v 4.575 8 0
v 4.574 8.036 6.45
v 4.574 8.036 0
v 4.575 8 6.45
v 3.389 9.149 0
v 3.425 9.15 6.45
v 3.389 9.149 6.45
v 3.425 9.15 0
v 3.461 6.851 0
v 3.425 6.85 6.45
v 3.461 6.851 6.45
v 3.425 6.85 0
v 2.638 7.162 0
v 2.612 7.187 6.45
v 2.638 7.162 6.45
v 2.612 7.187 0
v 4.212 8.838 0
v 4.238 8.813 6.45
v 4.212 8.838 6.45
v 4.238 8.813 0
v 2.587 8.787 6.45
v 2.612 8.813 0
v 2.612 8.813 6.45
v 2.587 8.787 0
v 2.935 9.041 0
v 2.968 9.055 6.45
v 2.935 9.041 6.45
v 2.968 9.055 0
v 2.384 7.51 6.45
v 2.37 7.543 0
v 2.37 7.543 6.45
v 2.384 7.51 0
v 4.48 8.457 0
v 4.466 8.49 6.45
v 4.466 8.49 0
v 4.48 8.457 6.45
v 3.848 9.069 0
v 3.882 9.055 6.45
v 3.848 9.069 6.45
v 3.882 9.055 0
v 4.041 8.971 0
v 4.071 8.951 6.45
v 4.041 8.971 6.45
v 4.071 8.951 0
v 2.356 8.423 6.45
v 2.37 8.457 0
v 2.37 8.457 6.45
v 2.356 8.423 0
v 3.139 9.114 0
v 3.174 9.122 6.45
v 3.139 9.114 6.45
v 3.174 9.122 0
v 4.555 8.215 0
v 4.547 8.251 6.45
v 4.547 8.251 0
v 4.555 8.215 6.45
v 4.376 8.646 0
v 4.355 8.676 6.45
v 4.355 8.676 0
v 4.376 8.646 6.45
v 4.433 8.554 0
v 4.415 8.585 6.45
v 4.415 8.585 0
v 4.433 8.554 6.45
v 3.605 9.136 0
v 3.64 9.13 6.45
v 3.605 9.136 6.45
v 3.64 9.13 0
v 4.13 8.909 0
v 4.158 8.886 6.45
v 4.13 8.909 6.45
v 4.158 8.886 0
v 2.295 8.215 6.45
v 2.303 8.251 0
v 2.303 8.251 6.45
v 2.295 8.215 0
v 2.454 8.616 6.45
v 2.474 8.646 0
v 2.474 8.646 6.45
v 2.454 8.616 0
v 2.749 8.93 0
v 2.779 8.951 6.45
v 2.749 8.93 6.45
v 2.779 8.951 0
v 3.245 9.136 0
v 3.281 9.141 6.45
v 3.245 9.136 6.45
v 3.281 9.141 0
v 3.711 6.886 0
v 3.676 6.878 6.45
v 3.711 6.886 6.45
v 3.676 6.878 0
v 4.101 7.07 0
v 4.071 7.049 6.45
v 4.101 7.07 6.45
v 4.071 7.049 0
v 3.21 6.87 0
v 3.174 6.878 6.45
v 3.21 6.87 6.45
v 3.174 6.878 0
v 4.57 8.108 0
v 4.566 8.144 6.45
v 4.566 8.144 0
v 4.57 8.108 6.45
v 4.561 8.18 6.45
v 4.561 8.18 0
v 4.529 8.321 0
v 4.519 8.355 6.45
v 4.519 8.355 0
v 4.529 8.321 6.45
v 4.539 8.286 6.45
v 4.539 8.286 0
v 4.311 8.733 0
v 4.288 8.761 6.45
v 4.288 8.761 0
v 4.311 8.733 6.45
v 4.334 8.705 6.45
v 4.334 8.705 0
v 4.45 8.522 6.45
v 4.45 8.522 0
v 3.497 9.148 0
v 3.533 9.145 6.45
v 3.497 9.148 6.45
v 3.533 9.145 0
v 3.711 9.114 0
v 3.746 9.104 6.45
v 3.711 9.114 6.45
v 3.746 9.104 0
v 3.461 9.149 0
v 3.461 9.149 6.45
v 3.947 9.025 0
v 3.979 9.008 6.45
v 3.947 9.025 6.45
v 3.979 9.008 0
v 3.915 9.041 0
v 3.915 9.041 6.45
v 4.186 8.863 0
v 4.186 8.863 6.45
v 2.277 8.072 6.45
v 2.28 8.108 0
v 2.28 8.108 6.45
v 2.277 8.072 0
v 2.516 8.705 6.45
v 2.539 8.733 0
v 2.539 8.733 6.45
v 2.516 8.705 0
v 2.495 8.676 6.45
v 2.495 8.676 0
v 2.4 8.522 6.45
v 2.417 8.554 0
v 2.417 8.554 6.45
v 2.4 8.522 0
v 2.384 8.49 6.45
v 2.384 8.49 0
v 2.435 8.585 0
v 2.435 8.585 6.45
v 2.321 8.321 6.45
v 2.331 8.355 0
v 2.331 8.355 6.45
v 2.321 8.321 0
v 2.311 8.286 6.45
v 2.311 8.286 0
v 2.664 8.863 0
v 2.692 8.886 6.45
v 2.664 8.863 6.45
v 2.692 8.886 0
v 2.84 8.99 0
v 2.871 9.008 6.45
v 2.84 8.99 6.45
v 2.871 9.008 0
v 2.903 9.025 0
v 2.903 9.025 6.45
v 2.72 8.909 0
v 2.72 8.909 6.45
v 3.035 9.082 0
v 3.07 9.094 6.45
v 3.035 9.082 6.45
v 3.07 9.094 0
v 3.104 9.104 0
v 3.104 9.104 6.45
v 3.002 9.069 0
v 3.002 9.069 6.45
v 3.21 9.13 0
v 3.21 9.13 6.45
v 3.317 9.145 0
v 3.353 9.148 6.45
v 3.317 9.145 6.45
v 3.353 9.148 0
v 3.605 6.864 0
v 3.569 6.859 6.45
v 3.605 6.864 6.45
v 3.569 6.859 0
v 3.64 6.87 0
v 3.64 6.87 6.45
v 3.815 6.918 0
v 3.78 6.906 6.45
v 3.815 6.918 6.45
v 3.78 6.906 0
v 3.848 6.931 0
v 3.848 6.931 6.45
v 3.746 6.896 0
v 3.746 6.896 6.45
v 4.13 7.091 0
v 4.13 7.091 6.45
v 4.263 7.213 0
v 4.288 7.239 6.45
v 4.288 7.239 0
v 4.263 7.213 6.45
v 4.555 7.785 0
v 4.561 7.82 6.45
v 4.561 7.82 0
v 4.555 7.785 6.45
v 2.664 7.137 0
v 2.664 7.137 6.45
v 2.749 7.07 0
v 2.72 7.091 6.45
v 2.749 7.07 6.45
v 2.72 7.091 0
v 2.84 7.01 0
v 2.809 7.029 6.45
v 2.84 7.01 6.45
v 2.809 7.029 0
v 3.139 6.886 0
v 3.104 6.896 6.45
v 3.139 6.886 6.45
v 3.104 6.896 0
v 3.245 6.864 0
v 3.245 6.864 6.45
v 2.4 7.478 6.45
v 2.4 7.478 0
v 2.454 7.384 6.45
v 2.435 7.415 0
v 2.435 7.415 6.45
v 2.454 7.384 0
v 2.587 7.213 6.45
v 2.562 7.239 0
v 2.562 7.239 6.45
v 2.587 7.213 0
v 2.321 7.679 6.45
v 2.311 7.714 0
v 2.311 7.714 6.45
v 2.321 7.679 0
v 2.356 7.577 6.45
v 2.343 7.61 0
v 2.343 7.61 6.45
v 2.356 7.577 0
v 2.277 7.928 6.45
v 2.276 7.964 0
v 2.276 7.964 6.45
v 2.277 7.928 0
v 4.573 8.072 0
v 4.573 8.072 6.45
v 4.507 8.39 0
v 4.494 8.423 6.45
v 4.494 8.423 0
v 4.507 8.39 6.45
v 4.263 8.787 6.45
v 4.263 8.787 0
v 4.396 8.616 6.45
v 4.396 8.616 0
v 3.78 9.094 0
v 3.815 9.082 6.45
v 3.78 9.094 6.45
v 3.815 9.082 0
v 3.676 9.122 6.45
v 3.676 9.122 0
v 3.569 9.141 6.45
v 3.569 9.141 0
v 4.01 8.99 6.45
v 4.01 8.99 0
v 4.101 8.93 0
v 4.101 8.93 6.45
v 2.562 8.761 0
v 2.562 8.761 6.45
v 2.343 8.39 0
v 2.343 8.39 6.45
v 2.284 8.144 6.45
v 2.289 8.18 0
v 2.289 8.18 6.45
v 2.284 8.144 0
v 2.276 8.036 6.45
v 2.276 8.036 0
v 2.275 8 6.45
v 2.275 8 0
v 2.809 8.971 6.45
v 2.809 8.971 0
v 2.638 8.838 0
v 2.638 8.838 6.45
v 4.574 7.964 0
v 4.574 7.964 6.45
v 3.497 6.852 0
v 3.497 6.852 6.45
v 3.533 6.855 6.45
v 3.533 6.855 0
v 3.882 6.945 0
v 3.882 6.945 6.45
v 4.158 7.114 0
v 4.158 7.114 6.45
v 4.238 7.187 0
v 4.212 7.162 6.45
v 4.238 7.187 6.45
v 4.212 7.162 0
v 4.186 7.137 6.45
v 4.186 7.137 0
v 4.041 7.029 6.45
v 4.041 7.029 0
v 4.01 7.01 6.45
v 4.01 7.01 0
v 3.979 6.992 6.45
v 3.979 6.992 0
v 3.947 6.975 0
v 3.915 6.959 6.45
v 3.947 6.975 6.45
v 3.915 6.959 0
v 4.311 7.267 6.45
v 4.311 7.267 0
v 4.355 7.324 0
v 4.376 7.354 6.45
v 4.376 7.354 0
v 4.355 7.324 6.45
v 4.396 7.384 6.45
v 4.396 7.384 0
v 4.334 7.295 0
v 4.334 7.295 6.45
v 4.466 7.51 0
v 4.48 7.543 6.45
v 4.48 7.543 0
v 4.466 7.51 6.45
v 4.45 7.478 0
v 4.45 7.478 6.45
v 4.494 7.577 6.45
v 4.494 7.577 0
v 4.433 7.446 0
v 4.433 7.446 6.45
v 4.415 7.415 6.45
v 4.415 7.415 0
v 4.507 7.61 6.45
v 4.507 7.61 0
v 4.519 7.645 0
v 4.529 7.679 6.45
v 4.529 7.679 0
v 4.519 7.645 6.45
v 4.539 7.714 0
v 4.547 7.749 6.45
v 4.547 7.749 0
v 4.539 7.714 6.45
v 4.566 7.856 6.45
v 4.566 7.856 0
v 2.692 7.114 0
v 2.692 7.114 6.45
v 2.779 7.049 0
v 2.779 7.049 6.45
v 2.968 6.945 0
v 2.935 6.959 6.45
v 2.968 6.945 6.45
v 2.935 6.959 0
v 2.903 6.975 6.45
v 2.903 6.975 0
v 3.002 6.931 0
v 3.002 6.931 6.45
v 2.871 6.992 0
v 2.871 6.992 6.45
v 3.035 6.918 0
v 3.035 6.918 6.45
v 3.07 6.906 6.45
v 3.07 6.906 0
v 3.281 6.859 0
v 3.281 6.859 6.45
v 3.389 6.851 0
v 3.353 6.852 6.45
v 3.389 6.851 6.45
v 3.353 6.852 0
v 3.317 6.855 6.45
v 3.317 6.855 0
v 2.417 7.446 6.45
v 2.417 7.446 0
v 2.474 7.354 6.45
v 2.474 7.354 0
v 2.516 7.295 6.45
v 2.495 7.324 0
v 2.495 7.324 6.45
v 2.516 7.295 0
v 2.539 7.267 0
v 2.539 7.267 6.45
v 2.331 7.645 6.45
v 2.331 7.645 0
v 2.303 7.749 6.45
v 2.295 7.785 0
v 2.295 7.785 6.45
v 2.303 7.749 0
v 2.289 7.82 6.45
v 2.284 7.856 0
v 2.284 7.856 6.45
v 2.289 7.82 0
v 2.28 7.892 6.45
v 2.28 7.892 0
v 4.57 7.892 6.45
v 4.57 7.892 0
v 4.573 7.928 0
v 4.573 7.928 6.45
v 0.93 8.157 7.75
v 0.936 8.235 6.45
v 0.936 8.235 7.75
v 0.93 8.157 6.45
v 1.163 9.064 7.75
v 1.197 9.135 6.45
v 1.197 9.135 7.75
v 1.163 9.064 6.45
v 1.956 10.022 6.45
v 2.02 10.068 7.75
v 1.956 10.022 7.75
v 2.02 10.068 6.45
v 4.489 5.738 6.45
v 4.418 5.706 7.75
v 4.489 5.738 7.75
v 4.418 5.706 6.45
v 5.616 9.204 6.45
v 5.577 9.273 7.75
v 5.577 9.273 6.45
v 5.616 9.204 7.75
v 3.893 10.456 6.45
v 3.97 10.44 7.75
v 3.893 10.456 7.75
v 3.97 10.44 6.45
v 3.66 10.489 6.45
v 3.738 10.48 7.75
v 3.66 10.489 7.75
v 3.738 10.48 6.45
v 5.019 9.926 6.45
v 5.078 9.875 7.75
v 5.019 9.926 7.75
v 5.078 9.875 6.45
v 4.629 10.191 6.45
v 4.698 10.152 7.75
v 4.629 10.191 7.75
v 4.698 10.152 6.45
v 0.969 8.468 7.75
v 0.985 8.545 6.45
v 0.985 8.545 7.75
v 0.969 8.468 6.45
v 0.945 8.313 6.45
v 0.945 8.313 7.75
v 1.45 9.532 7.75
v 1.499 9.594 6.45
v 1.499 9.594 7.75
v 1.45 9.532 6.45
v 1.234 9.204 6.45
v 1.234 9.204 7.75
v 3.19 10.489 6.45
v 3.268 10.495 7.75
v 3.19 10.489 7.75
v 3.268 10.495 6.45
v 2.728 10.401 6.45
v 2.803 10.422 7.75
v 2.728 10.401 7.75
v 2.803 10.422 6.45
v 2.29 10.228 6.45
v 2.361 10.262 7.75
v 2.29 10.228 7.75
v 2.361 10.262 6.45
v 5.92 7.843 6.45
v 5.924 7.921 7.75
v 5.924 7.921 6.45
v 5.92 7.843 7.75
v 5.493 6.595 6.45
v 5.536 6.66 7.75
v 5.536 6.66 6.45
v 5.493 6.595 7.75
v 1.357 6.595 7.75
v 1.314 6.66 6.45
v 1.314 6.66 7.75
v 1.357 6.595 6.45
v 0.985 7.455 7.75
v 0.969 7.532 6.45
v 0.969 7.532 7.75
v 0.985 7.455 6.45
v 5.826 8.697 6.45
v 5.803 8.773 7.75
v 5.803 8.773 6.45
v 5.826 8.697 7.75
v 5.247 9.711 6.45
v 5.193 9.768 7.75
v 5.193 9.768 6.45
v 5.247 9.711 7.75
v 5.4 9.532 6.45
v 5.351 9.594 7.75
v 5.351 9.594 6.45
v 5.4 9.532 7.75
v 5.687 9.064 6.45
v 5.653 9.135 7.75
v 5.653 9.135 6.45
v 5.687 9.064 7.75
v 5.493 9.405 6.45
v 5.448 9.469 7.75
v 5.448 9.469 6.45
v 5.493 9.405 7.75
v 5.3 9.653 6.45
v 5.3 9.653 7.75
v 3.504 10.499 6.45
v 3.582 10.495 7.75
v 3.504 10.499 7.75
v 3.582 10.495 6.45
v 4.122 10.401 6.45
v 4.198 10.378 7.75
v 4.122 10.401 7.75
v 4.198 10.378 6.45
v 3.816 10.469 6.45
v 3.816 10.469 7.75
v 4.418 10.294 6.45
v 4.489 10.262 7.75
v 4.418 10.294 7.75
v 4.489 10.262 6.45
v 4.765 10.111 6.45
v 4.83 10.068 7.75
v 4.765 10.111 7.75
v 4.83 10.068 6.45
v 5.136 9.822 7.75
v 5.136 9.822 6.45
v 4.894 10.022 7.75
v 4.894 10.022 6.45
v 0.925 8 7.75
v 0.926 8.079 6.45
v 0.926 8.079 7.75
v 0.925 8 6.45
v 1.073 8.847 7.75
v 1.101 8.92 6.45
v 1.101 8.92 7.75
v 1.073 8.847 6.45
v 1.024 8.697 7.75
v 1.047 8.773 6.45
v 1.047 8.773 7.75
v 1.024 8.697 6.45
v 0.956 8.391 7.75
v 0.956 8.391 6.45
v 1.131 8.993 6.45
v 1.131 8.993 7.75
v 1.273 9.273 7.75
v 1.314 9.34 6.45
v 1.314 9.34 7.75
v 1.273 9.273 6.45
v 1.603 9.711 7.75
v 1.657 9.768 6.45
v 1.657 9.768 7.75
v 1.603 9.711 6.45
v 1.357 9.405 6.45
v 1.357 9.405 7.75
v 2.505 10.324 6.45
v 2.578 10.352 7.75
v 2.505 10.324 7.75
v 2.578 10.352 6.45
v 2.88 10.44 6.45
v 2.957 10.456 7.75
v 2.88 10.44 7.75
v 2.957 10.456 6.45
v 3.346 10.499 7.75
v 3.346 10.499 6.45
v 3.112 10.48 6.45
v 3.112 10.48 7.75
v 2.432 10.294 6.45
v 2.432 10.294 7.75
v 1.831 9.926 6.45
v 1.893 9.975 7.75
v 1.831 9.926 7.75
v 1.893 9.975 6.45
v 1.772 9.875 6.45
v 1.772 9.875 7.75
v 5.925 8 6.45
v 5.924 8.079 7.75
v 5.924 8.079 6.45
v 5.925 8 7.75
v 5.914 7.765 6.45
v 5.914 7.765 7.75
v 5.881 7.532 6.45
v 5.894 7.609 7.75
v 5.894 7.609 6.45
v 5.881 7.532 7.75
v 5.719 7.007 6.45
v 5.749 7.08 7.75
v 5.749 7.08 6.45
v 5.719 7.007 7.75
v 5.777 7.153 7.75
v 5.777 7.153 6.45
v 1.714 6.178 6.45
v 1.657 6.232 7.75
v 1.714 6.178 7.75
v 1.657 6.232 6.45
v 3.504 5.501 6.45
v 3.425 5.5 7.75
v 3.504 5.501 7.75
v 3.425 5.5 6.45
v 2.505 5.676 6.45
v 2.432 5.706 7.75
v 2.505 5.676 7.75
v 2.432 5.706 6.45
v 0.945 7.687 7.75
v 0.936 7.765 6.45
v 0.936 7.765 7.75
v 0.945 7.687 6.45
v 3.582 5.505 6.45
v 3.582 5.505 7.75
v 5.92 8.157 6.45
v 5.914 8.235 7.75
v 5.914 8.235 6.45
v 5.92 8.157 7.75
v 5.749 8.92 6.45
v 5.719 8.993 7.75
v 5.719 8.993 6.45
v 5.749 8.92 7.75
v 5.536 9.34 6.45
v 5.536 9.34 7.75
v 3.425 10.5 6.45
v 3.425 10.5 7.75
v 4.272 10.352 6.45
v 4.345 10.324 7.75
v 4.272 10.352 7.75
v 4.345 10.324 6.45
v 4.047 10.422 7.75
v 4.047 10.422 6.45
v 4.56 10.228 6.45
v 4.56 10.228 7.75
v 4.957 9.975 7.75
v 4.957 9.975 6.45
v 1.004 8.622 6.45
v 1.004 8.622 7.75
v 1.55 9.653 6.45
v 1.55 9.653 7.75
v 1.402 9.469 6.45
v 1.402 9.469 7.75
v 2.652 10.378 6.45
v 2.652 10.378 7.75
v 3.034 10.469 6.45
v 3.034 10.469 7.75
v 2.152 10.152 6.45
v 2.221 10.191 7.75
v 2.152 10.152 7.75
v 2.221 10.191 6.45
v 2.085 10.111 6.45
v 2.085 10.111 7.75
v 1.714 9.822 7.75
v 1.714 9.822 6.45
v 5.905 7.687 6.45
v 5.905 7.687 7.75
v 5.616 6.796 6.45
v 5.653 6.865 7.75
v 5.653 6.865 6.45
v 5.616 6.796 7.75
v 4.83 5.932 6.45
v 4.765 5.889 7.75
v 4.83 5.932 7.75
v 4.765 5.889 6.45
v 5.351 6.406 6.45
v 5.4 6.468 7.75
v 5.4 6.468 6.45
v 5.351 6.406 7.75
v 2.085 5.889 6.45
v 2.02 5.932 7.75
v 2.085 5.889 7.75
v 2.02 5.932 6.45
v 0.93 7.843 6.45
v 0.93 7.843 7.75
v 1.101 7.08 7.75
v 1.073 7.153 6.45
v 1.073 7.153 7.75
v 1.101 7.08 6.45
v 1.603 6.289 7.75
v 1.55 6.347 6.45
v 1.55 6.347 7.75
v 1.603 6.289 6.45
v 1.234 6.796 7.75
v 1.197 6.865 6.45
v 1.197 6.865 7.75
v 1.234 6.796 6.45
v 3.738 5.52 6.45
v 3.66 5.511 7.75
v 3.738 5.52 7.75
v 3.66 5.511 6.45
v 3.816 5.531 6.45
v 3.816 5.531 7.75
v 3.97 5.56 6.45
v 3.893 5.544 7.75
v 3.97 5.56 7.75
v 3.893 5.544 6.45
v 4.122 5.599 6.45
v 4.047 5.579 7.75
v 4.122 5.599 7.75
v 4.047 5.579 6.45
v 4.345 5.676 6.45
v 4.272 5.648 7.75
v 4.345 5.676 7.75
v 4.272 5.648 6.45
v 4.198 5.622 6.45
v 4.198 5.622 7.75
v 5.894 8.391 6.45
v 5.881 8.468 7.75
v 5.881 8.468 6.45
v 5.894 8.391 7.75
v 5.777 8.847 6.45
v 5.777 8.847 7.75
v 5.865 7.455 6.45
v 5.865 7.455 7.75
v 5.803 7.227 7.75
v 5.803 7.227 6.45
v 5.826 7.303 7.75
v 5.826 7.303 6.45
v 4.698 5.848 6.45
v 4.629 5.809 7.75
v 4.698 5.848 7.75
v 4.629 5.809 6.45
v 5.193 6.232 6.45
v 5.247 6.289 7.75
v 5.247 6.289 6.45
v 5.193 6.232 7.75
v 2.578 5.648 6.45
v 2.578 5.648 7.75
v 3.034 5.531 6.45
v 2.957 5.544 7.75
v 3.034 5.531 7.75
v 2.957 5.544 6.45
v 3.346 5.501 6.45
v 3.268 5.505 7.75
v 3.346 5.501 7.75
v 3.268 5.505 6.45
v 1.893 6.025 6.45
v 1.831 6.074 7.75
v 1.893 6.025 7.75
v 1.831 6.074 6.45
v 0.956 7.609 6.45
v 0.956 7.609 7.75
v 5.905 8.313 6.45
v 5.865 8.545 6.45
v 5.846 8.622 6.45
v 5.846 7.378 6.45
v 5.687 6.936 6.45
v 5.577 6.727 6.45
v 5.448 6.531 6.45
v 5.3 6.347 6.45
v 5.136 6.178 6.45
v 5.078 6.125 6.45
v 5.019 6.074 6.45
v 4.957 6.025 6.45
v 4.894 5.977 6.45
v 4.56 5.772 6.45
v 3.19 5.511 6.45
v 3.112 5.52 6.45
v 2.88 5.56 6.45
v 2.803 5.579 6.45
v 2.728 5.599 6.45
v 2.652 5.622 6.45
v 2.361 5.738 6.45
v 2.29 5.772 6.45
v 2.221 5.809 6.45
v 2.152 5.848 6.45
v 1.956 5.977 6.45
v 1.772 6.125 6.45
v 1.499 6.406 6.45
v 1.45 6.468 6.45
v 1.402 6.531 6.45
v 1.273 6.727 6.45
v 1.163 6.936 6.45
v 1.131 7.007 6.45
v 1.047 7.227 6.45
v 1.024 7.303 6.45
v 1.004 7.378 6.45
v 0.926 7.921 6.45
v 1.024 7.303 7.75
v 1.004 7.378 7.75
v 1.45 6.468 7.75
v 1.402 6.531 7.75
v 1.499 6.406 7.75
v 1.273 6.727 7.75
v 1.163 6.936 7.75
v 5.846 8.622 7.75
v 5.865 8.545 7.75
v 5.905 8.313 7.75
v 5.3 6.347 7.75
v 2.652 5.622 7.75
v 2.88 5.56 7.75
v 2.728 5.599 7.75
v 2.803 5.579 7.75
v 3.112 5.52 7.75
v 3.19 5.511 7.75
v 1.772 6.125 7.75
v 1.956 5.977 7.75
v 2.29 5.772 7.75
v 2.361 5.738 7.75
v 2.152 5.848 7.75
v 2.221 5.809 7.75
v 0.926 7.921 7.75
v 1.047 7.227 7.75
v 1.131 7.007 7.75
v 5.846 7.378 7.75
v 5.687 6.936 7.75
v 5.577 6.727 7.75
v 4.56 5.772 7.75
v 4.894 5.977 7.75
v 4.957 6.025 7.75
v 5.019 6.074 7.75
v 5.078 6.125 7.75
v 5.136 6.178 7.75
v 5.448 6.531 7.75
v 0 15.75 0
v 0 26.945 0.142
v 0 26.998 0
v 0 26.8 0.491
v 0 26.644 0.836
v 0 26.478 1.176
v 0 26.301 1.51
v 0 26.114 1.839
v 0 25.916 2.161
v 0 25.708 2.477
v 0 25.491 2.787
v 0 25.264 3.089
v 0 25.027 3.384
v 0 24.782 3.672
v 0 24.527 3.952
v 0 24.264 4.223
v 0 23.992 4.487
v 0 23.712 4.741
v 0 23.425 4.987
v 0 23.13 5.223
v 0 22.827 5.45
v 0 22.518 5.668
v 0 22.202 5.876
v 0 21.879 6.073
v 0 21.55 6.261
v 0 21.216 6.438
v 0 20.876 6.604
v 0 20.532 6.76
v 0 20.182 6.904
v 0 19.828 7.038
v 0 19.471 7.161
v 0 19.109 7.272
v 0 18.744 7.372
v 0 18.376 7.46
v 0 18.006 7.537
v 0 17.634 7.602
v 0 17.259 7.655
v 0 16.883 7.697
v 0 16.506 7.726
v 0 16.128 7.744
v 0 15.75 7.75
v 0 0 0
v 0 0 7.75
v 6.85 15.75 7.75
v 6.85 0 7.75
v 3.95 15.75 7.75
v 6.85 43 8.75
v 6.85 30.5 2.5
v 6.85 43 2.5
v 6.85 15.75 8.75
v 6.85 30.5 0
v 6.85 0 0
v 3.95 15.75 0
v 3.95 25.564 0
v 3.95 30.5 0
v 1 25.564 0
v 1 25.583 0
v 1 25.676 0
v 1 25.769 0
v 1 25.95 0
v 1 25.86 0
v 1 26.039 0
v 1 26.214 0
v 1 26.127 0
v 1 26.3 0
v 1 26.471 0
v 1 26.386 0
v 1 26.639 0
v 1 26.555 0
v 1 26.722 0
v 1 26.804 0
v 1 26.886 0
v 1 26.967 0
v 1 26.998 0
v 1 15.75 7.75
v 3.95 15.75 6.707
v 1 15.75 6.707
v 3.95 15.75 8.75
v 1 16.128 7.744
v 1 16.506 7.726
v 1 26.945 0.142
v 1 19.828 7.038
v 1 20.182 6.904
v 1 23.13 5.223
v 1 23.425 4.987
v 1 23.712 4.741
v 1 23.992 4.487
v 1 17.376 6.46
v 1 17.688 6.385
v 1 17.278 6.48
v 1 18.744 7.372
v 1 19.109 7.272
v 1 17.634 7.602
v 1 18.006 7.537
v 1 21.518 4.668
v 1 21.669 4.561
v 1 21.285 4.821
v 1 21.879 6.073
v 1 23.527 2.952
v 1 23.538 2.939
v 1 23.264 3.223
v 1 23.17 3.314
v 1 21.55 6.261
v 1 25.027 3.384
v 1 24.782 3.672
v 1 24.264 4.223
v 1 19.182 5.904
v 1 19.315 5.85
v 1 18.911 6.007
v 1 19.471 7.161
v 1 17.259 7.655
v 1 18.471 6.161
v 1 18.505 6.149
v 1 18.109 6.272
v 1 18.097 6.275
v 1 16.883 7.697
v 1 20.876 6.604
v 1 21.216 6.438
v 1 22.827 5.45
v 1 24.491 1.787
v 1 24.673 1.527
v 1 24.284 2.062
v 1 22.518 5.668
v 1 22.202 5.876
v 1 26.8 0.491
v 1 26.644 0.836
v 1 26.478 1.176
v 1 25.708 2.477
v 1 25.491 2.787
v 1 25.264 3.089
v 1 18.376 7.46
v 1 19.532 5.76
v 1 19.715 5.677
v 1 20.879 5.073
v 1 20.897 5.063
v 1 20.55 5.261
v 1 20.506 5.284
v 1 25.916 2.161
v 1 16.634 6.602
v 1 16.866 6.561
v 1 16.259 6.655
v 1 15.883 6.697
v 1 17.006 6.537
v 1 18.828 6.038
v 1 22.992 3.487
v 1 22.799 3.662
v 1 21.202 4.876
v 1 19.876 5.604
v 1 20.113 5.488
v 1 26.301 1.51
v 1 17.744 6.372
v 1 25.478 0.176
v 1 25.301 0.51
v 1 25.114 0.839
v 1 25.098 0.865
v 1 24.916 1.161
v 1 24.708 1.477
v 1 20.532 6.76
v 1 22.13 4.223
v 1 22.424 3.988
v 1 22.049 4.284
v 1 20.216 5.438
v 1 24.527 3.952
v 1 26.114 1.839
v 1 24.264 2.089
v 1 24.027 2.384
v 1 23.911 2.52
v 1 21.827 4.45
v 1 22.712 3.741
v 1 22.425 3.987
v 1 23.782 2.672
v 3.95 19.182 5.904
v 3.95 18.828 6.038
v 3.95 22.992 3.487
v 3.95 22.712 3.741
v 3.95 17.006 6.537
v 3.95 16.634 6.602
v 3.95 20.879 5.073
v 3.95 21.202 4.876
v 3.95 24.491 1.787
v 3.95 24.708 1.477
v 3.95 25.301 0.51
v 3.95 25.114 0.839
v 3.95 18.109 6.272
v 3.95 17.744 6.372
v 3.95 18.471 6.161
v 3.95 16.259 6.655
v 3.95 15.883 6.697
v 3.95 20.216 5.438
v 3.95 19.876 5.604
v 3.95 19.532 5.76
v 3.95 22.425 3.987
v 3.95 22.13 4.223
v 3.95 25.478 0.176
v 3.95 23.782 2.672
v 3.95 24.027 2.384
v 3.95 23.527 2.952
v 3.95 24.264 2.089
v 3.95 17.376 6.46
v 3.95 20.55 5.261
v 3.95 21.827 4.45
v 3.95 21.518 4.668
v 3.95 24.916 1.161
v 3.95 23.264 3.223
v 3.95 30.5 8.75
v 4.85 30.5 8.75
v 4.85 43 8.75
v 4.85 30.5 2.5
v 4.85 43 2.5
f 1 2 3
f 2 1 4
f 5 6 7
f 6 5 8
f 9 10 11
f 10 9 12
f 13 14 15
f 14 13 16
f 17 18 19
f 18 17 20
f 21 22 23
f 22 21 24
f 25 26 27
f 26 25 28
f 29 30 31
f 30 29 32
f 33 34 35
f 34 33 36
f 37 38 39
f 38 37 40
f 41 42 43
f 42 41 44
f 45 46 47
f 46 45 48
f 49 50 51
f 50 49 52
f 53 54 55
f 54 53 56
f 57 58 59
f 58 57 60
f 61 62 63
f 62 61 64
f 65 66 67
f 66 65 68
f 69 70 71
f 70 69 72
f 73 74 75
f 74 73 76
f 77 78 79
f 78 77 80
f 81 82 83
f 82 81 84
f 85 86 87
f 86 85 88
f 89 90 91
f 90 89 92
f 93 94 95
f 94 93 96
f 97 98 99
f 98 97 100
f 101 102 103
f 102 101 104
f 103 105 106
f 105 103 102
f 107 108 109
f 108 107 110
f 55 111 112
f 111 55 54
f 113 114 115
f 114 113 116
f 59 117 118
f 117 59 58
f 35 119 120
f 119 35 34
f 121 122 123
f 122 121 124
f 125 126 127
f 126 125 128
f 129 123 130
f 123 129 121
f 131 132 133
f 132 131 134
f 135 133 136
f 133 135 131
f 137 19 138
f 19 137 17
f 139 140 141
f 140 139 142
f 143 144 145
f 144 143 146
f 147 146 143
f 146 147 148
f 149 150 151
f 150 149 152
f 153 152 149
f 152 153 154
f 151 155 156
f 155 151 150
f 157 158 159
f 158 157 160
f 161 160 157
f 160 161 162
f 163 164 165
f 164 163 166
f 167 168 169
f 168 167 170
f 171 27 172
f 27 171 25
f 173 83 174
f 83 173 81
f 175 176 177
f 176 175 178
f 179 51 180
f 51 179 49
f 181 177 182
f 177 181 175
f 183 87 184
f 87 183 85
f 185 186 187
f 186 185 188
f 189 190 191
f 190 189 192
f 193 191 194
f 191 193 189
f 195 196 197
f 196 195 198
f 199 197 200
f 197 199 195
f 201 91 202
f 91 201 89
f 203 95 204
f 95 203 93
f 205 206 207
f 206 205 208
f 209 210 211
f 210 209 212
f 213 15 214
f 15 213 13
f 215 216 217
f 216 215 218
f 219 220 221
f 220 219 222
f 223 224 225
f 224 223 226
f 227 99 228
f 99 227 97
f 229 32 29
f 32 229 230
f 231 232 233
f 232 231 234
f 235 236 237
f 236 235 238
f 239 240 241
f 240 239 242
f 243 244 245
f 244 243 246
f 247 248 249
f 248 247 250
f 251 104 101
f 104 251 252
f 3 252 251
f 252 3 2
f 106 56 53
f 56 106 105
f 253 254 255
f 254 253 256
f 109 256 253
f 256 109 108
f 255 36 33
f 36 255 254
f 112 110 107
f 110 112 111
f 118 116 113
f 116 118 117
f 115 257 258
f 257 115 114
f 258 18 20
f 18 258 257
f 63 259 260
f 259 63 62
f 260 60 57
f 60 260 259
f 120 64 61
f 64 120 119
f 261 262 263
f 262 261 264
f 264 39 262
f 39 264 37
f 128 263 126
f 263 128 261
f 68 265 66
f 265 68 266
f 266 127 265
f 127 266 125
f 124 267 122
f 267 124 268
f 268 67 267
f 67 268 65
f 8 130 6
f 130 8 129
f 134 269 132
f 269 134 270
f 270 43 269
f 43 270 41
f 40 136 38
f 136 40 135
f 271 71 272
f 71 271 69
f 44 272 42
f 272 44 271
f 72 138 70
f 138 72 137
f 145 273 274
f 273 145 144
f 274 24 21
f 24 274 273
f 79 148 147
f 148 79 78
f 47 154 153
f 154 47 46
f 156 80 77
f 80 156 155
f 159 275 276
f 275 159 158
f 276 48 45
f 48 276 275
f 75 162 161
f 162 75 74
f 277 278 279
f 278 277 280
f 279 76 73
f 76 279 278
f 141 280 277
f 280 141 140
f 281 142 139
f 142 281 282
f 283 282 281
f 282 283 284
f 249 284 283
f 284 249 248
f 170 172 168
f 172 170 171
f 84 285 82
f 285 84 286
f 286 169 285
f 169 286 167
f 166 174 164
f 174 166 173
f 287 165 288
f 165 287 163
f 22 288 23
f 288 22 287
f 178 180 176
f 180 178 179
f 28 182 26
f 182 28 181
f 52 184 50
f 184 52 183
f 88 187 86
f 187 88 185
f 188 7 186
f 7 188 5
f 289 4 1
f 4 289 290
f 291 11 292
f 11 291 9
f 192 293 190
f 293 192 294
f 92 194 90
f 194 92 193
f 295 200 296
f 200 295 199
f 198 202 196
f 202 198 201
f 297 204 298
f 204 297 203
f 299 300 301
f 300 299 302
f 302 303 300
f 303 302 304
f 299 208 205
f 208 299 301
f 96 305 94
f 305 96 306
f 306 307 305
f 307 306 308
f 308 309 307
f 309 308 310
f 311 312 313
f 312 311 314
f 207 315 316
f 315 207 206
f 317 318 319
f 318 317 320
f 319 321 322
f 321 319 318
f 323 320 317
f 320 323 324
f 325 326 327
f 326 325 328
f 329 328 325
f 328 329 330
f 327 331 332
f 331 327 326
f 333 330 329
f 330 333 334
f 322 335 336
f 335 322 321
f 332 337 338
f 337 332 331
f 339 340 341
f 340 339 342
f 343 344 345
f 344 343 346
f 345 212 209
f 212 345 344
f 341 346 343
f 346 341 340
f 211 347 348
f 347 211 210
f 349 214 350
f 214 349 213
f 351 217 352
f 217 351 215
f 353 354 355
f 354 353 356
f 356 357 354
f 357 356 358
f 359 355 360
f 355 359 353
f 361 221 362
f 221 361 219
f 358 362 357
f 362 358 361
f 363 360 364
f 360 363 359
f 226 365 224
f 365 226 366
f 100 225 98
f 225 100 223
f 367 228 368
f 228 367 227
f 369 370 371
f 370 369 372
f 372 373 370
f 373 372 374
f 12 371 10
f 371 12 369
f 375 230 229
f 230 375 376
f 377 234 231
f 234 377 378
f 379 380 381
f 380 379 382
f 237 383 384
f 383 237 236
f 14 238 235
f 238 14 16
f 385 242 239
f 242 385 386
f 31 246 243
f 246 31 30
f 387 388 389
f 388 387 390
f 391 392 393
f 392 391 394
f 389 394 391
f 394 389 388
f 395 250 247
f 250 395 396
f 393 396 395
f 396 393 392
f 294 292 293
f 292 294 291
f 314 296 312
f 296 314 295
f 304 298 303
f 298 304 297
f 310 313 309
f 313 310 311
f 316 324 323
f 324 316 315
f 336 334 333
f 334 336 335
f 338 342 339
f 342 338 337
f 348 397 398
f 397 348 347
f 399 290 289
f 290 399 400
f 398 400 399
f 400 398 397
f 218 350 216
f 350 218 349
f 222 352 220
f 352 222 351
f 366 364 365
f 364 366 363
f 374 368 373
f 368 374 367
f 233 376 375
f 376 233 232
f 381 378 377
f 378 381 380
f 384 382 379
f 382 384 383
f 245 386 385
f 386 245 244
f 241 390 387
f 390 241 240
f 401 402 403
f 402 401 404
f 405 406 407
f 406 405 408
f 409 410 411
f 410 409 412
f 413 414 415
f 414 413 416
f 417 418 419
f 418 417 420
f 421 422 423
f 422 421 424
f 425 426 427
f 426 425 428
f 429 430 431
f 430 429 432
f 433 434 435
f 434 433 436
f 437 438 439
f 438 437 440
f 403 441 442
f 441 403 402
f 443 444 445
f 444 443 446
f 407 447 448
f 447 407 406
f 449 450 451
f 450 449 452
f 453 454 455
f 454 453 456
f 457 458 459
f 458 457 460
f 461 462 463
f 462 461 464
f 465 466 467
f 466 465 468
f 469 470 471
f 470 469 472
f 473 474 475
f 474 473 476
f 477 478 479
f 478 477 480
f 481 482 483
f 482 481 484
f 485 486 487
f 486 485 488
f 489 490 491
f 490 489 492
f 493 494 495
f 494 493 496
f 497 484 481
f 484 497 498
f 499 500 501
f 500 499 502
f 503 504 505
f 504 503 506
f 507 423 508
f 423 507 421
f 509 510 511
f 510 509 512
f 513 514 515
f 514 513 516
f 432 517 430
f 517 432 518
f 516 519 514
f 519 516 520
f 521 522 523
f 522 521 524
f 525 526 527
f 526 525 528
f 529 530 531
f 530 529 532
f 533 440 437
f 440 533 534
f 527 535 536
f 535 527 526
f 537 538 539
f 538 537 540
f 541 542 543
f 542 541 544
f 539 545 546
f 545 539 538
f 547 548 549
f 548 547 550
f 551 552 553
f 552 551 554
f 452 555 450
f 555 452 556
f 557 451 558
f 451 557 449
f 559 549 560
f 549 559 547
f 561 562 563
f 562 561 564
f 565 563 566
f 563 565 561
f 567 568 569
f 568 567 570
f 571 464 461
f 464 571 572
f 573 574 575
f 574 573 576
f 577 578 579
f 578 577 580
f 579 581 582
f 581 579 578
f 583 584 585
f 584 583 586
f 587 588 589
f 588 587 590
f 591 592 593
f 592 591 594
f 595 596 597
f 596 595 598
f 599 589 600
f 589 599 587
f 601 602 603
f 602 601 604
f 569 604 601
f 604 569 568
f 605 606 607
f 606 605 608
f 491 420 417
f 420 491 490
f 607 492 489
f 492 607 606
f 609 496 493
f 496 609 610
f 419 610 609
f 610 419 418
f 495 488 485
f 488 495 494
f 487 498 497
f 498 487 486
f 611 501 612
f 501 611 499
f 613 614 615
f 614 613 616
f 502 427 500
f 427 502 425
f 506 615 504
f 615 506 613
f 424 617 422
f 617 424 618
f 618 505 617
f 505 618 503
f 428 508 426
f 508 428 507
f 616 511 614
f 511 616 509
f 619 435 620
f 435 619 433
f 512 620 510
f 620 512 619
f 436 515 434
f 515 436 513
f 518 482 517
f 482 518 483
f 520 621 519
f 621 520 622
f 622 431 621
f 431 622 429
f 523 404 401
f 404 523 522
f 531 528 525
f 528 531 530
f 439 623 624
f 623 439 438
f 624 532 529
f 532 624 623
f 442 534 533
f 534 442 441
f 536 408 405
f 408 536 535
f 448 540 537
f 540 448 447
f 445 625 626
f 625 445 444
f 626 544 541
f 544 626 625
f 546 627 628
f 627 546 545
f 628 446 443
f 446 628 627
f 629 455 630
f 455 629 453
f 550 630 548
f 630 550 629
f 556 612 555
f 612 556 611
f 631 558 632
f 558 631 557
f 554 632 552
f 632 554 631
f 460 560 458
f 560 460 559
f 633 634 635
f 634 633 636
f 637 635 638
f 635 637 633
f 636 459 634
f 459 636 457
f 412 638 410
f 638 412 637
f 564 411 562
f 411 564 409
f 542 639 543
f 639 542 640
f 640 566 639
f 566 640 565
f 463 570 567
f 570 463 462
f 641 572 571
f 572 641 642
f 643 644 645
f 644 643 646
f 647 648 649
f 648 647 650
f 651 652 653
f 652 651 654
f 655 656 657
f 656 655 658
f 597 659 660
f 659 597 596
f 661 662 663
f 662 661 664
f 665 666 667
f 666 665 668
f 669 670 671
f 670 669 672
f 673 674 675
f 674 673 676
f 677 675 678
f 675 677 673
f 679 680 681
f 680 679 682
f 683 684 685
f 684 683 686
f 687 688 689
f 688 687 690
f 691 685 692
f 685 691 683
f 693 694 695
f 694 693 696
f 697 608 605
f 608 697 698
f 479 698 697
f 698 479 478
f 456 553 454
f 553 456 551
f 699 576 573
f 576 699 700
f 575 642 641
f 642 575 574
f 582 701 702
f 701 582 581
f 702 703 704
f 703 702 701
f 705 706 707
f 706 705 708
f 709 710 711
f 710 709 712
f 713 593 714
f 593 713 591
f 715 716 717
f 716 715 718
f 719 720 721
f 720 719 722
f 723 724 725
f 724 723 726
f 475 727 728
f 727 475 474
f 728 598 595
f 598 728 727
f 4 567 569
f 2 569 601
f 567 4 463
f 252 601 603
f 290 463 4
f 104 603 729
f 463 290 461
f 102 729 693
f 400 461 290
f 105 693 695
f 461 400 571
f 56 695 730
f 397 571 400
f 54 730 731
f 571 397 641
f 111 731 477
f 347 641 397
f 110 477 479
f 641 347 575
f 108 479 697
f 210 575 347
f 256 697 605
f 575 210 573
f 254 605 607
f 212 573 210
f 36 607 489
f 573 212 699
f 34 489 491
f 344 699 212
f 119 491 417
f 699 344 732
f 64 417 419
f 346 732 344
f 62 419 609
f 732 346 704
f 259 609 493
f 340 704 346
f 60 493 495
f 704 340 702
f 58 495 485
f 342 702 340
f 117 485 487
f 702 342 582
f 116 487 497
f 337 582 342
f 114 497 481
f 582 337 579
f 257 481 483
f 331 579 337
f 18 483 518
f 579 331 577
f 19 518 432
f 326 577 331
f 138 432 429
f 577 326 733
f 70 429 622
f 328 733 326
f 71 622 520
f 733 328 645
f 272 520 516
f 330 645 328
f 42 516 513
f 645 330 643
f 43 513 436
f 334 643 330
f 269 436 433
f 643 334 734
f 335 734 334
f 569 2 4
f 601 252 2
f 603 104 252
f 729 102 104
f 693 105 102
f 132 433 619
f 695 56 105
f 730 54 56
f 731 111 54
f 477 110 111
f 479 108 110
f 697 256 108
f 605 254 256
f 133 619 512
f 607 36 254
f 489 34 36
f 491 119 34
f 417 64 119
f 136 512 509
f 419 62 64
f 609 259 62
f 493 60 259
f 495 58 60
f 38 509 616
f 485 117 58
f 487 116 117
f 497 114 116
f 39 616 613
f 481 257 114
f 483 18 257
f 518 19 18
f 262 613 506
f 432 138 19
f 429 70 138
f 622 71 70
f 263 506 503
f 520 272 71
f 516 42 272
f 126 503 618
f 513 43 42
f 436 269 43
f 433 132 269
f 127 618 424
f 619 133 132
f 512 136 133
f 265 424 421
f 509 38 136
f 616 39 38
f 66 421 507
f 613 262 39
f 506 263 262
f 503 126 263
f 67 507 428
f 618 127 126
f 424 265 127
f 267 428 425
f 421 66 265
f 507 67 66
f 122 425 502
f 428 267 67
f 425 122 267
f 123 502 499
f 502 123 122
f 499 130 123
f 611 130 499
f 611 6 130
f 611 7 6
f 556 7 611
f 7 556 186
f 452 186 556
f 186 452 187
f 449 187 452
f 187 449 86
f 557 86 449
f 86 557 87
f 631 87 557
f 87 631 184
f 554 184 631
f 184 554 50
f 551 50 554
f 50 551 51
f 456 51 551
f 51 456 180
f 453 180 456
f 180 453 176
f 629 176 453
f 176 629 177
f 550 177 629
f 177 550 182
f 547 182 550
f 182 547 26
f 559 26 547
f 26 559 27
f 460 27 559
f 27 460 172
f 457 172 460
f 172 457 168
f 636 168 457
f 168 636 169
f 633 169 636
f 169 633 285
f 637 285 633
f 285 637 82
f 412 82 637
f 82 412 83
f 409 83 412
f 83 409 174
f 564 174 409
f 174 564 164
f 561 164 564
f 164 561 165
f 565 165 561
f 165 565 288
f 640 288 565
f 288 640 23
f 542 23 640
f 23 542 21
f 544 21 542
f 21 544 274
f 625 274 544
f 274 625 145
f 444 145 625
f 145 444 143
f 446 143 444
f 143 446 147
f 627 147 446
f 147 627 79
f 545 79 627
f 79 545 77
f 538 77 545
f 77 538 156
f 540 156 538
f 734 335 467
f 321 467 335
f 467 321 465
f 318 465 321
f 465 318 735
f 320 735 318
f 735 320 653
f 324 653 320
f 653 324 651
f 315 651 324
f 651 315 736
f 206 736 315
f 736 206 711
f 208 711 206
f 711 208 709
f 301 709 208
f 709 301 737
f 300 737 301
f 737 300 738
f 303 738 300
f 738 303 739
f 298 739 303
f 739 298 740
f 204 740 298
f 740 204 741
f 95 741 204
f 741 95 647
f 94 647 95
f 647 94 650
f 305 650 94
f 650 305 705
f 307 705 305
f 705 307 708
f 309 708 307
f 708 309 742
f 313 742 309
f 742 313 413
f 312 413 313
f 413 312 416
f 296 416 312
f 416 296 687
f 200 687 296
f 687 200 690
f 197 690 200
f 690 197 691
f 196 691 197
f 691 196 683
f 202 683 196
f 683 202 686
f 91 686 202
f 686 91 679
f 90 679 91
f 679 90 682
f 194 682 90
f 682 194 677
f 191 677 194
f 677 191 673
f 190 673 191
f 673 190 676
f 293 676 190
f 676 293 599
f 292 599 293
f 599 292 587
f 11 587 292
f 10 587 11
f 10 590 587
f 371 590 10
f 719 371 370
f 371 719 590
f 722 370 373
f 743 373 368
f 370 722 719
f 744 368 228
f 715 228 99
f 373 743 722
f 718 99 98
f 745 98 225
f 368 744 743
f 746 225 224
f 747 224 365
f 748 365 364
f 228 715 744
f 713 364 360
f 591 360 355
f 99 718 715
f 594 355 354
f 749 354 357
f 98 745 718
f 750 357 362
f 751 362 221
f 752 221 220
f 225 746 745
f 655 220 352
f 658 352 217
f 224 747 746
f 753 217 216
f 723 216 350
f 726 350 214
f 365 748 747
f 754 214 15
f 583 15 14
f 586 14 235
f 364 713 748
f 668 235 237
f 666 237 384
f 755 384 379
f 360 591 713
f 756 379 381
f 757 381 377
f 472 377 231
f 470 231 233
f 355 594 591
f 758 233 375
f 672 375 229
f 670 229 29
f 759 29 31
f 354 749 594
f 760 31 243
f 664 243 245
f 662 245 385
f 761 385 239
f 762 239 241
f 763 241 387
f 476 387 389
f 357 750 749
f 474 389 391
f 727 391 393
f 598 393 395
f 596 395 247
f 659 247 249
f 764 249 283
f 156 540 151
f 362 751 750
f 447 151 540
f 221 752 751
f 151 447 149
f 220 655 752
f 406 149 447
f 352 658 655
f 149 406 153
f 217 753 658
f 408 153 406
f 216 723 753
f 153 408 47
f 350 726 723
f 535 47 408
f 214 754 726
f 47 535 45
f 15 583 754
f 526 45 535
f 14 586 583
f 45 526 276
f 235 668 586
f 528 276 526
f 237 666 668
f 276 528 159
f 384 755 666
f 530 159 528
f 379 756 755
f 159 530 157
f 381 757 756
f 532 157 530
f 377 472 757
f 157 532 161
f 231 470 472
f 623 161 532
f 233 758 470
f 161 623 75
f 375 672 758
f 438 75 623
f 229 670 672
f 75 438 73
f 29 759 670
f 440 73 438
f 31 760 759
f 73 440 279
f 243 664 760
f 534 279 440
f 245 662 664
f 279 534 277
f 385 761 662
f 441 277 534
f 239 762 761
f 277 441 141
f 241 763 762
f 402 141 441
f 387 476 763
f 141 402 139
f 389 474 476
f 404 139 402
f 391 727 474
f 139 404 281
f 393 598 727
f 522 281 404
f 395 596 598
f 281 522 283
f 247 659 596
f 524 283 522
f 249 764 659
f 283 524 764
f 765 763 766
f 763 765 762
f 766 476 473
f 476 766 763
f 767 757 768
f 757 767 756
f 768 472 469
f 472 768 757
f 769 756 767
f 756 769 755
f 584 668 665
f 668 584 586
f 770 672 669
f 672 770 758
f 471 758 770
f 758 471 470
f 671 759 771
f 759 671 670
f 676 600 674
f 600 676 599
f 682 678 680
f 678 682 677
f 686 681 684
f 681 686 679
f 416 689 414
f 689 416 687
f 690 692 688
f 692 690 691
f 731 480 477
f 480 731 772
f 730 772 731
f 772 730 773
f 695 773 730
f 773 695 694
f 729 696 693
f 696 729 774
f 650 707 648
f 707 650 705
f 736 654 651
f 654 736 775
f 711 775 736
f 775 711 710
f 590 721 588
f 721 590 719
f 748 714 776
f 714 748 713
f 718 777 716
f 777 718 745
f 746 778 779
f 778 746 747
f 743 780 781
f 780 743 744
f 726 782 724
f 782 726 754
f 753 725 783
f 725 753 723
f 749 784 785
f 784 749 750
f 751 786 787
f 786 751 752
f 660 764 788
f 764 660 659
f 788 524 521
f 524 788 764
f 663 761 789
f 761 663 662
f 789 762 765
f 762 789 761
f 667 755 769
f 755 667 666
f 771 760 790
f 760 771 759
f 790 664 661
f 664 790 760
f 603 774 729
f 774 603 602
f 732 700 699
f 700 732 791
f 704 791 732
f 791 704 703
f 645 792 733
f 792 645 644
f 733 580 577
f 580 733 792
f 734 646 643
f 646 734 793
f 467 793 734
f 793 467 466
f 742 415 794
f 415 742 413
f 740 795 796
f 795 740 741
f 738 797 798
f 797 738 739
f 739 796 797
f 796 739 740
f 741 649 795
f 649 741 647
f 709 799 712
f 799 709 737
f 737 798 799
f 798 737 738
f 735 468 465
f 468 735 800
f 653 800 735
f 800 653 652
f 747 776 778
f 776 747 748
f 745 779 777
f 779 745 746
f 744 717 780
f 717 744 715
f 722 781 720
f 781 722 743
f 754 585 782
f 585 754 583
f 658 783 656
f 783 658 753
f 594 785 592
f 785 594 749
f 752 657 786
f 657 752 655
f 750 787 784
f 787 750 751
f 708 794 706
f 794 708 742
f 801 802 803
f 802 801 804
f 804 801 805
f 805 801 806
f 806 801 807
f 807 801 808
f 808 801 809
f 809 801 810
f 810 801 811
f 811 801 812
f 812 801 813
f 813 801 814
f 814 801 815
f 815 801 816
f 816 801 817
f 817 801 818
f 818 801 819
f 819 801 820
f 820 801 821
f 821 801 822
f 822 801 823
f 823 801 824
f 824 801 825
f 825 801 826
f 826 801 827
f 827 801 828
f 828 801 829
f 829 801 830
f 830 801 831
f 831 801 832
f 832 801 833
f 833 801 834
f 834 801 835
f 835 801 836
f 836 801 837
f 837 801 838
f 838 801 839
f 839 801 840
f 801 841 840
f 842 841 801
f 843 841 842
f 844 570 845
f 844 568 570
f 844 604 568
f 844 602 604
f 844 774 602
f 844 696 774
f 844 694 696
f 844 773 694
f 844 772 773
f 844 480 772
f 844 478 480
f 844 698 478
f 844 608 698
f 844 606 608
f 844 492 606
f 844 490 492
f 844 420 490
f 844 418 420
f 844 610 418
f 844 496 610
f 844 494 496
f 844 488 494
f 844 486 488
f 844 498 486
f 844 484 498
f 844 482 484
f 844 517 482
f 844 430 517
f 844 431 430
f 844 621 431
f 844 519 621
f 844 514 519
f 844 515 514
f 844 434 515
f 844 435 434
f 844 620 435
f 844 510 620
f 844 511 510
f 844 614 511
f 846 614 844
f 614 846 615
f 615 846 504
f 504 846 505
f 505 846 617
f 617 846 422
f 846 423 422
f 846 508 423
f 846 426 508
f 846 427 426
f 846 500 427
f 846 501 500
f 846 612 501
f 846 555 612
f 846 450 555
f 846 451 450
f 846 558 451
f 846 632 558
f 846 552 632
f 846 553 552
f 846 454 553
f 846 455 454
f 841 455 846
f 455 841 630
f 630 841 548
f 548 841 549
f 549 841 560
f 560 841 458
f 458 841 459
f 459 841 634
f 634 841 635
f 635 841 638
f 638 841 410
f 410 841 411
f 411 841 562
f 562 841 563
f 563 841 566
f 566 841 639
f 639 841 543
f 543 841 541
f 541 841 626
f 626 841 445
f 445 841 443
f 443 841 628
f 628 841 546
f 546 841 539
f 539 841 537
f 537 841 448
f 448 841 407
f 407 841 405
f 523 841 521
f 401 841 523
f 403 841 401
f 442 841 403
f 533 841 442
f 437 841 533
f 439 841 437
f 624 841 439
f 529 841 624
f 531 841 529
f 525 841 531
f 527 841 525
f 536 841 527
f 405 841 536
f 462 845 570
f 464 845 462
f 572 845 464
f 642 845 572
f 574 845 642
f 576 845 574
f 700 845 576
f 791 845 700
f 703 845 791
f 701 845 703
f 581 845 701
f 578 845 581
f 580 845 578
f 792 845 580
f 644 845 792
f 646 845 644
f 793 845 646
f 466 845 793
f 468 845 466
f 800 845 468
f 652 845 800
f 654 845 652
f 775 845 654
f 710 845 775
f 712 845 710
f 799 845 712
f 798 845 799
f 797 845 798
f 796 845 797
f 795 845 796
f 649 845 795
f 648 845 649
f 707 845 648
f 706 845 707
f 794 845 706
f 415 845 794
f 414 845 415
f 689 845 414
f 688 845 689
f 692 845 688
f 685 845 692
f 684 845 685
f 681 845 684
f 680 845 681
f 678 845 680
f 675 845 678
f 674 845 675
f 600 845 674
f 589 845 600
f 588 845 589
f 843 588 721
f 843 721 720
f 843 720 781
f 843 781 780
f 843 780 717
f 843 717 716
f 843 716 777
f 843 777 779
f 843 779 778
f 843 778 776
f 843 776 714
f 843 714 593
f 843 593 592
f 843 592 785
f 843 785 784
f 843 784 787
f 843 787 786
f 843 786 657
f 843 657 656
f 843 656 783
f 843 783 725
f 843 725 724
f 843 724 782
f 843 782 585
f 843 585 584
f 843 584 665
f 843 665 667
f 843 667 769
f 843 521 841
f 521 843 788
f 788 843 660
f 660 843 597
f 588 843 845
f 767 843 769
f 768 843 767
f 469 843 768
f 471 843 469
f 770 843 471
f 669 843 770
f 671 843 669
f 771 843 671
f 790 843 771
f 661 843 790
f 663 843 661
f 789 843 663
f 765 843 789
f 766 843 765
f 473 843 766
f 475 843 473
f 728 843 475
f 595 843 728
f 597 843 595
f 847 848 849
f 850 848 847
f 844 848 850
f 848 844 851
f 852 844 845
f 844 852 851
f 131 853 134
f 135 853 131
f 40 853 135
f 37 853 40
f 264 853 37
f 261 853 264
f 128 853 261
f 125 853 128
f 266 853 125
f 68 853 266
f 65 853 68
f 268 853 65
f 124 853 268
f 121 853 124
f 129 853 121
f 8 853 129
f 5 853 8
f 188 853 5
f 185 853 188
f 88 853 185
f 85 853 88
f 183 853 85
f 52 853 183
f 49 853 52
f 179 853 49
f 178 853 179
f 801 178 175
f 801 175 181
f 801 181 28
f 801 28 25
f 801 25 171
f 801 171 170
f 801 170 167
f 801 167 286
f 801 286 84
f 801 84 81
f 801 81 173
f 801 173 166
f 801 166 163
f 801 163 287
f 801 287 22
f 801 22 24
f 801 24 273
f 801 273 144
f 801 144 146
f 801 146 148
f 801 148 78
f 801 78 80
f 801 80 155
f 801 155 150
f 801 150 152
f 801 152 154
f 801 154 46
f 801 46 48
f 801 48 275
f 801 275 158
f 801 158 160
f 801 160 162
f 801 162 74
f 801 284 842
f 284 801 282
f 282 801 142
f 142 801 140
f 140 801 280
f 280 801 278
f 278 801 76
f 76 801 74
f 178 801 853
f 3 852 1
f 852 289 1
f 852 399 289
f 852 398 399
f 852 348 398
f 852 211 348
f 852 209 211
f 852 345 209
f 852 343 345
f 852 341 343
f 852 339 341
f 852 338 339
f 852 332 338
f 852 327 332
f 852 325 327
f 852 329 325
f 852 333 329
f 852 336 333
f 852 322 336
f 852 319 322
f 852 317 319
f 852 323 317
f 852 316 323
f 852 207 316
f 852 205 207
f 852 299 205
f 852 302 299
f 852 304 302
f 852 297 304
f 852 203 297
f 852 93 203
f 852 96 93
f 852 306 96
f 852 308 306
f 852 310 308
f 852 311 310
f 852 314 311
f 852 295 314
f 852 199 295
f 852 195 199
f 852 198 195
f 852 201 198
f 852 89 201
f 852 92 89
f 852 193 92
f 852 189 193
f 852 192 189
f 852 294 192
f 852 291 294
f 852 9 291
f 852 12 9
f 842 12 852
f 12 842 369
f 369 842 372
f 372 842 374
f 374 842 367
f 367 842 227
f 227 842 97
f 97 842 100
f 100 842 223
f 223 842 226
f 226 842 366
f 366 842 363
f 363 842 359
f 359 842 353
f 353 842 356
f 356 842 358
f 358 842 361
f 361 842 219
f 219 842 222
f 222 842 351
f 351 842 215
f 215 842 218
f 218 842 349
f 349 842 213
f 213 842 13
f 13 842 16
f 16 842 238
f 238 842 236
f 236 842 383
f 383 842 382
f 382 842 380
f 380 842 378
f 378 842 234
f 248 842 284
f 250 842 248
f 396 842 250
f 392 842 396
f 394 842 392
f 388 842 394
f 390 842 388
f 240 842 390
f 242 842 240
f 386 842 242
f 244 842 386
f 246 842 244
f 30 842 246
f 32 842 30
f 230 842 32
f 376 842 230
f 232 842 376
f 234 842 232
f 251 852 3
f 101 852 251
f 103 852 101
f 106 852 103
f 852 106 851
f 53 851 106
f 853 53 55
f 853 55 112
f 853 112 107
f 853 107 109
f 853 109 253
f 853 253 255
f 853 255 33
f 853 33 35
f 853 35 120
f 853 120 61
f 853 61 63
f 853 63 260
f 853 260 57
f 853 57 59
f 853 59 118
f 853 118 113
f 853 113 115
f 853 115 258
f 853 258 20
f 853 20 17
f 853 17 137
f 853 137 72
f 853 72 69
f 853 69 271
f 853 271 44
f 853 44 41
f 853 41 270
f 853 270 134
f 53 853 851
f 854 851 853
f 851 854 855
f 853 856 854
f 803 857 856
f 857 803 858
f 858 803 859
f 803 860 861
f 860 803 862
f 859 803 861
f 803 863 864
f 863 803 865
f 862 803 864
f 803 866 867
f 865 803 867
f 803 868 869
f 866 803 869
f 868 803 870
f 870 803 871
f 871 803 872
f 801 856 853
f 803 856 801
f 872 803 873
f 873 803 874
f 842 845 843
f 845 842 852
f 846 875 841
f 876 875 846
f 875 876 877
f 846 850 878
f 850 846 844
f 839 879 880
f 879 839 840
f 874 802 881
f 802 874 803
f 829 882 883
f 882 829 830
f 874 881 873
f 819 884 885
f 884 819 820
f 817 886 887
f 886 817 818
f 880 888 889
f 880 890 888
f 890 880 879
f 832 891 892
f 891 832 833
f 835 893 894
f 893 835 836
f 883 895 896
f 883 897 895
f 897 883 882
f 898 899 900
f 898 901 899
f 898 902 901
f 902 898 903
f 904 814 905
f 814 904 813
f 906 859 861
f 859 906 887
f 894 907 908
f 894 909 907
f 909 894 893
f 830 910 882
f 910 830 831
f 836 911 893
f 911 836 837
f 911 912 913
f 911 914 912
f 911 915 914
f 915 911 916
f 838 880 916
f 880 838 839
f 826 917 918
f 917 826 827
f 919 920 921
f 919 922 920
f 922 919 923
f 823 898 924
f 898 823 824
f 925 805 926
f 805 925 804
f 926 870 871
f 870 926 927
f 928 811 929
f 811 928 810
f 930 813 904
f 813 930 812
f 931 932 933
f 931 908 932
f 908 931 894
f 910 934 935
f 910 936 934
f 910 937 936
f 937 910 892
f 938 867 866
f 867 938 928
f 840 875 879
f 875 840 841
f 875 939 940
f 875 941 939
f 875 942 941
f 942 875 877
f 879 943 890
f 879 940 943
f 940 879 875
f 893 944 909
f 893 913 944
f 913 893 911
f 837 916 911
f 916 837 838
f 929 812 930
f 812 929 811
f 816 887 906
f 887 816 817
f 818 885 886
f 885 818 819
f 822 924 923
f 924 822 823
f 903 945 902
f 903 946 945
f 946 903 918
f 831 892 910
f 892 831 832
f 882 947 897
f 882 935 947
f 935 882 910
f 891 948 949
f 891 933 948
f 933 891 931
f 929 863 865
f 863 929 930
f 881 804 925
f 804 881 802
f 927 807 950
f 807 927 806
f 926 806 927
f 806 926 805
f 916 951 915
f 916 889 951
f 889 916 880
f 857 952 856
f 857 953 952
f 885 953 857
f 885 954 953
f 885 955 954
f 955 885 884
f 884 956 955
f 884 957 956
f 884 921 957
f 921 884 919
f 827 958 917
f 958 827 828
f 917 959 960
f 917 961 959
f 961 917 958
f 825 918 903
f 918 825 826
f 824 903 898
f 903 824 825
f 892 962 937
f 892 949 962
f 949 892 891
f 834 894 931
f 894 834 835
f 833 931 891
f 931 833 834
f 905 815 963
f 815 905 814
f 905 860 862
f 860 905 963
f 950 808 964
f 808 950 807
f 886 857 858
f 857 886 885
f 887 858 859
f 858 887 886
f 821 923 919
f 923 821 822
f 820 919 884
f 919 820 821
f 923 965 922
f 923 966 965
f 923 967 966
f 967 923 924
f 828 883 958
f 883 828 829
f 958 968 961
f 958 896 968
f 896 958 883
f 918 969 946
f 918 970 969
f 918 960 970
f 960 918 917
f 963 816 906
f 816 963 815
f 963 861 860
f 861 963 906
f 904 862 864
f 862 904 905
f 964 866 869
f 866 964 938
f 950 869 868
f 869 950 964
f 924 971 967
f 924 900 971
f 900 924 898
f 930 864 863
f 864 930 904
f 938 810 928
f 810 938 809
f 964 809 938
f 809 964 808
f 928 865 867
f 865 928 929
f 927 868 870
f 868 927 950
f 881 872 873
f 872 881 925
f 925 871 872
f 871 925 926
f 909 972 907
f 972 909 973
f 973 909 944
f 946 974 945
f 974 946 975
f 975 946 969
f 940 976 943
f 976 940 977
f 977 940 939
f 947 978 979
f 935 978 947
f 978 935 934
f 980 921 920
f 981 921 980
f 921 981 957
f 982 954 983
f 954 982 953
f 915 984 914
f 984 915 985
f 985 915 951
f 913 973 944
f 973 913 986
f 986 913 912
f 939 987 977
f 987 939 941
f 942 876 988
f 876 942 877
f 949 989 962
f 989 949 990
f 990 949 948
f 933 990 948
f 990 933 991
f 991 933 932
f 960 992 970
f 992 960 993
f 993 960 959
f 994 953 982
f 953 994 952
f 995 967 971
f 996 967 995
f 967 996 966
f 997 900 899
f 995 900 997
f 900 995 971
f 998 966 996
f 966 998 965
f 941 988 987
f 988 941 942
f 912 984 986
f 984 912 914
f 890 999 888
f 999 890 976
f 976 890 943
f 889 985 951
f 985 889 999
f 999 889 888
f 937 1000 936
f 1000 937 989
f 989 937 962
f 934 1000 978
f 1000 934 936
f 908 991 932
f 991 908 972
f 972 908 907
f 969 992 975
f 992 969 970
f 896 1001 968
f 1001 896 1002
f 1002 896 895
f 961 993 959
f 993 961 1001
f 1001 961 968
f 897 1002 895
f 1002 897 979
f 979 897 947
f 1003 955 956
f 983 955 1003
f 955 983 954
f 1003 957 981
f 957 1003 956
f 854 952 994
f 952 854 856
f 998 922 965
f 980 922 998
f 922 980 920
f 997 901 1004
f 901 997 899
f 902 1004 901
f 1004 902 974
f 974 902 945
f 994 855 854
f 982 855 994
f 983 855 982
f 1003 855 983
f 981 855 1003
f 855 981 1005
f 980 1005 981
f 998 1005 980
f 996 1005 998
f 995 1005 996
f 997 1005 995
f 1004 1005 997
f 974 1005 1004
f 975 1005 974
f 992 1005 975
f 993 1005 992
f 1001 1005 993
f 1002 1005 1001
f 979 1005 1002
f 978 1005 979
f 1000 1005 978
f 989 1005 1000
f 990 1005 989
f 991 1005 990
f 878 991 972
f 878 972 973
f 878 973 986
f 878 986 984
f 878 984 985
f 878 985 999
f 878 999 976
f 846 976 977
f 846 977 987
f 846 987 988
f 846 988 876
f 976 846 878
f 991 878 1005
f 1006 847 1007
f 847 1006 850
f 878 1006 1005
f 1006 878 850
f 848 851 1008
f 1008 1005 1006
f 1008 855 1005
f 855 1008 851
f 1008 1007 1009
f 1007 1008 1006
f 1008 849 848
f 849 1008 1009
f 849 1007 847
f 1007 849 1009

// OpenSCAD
$fn=200;

// full size of object (bounds)
fullDepth           = 43;
fullHeight          = 8.75;
fullWidth           = 6.85;

// screw area
screwHeight         = 7.75;
screwDepth          = 15.75;

// screw hole
screwInsetDiameter  = 5;
screwInset          = 1.3;
screwHoleDiameter   = 2.3;
screwCenterY        = 5.5 + (screwInsetDiameter / 2);
screwCenterX        = fullWidth / 2;

// upper arm
armWidth            = 2.9;
armDepth            = 14.75;

// forearm
forearmWidth        = 2;
forearmDepth        = fullDepth - screwDepth - armDepth;
forearmHeight       = 6.25;

// swoop ridge
swoopRidgeWidth     = 1;
swoopRidgeDepth     = 27 - screwDepth;

// swoop
swoopWidth          = fullWidth - armWidth - swoopRidgeWidth;
swoopMaxHeight      = 6.5;
swoopInset          = 1;
swoopRadius         = 12.040322580645157;

// OBJECT

// screw area and holes
difference(){
    cube([fullWidth,screwDepth,screwHeight]);
    union(){
        translate([screwCenterX,screwCenterY, -.5])
            cylinder(fullHeight+1, d=screwHoleDiameter, d=screwHoleDiameter);
        translate([screwCenterX,screwCenterY, screwHeight-screwInset])
            cylinder(screwInset+.5, d=screwInsetDiameter, d=screwInsetDiameter);
    }
}

// upper arm
translate([fullWidth - armWidth, screwDepth, 0])
    cube([armWidth, armDepth, fullHeight]);

// forearm
translate([fullWidth - forearmWidth, screwDepth + armDepth, fullHeight-forearmHeight])
    cube([forearmWidth, forearmDepth, forearmHeight]);



difference(){
    union(){
        translate([0, screwDepth, screwHeight - swoopRadius]){
            rotate([90,90,90])
                cylinder(swoopRidgeWidth, swoopRadius, swoopRadius);
        }
        translate([0, screwDepth - swoopInset, screwHeight - swoopRadius - swoopInset]){
            rotate([90,90,90])
                cylinder(fullWidth, swoopRadius, swoopRadius);
        }
    }    
    union(){
        cube([fullWidth,screwDepth,screwHeight]);
        translate([0,0,-fullDepth]) {
            cube([fullDepth,fullDepth,fullDepth]);
        }
    }
}   
